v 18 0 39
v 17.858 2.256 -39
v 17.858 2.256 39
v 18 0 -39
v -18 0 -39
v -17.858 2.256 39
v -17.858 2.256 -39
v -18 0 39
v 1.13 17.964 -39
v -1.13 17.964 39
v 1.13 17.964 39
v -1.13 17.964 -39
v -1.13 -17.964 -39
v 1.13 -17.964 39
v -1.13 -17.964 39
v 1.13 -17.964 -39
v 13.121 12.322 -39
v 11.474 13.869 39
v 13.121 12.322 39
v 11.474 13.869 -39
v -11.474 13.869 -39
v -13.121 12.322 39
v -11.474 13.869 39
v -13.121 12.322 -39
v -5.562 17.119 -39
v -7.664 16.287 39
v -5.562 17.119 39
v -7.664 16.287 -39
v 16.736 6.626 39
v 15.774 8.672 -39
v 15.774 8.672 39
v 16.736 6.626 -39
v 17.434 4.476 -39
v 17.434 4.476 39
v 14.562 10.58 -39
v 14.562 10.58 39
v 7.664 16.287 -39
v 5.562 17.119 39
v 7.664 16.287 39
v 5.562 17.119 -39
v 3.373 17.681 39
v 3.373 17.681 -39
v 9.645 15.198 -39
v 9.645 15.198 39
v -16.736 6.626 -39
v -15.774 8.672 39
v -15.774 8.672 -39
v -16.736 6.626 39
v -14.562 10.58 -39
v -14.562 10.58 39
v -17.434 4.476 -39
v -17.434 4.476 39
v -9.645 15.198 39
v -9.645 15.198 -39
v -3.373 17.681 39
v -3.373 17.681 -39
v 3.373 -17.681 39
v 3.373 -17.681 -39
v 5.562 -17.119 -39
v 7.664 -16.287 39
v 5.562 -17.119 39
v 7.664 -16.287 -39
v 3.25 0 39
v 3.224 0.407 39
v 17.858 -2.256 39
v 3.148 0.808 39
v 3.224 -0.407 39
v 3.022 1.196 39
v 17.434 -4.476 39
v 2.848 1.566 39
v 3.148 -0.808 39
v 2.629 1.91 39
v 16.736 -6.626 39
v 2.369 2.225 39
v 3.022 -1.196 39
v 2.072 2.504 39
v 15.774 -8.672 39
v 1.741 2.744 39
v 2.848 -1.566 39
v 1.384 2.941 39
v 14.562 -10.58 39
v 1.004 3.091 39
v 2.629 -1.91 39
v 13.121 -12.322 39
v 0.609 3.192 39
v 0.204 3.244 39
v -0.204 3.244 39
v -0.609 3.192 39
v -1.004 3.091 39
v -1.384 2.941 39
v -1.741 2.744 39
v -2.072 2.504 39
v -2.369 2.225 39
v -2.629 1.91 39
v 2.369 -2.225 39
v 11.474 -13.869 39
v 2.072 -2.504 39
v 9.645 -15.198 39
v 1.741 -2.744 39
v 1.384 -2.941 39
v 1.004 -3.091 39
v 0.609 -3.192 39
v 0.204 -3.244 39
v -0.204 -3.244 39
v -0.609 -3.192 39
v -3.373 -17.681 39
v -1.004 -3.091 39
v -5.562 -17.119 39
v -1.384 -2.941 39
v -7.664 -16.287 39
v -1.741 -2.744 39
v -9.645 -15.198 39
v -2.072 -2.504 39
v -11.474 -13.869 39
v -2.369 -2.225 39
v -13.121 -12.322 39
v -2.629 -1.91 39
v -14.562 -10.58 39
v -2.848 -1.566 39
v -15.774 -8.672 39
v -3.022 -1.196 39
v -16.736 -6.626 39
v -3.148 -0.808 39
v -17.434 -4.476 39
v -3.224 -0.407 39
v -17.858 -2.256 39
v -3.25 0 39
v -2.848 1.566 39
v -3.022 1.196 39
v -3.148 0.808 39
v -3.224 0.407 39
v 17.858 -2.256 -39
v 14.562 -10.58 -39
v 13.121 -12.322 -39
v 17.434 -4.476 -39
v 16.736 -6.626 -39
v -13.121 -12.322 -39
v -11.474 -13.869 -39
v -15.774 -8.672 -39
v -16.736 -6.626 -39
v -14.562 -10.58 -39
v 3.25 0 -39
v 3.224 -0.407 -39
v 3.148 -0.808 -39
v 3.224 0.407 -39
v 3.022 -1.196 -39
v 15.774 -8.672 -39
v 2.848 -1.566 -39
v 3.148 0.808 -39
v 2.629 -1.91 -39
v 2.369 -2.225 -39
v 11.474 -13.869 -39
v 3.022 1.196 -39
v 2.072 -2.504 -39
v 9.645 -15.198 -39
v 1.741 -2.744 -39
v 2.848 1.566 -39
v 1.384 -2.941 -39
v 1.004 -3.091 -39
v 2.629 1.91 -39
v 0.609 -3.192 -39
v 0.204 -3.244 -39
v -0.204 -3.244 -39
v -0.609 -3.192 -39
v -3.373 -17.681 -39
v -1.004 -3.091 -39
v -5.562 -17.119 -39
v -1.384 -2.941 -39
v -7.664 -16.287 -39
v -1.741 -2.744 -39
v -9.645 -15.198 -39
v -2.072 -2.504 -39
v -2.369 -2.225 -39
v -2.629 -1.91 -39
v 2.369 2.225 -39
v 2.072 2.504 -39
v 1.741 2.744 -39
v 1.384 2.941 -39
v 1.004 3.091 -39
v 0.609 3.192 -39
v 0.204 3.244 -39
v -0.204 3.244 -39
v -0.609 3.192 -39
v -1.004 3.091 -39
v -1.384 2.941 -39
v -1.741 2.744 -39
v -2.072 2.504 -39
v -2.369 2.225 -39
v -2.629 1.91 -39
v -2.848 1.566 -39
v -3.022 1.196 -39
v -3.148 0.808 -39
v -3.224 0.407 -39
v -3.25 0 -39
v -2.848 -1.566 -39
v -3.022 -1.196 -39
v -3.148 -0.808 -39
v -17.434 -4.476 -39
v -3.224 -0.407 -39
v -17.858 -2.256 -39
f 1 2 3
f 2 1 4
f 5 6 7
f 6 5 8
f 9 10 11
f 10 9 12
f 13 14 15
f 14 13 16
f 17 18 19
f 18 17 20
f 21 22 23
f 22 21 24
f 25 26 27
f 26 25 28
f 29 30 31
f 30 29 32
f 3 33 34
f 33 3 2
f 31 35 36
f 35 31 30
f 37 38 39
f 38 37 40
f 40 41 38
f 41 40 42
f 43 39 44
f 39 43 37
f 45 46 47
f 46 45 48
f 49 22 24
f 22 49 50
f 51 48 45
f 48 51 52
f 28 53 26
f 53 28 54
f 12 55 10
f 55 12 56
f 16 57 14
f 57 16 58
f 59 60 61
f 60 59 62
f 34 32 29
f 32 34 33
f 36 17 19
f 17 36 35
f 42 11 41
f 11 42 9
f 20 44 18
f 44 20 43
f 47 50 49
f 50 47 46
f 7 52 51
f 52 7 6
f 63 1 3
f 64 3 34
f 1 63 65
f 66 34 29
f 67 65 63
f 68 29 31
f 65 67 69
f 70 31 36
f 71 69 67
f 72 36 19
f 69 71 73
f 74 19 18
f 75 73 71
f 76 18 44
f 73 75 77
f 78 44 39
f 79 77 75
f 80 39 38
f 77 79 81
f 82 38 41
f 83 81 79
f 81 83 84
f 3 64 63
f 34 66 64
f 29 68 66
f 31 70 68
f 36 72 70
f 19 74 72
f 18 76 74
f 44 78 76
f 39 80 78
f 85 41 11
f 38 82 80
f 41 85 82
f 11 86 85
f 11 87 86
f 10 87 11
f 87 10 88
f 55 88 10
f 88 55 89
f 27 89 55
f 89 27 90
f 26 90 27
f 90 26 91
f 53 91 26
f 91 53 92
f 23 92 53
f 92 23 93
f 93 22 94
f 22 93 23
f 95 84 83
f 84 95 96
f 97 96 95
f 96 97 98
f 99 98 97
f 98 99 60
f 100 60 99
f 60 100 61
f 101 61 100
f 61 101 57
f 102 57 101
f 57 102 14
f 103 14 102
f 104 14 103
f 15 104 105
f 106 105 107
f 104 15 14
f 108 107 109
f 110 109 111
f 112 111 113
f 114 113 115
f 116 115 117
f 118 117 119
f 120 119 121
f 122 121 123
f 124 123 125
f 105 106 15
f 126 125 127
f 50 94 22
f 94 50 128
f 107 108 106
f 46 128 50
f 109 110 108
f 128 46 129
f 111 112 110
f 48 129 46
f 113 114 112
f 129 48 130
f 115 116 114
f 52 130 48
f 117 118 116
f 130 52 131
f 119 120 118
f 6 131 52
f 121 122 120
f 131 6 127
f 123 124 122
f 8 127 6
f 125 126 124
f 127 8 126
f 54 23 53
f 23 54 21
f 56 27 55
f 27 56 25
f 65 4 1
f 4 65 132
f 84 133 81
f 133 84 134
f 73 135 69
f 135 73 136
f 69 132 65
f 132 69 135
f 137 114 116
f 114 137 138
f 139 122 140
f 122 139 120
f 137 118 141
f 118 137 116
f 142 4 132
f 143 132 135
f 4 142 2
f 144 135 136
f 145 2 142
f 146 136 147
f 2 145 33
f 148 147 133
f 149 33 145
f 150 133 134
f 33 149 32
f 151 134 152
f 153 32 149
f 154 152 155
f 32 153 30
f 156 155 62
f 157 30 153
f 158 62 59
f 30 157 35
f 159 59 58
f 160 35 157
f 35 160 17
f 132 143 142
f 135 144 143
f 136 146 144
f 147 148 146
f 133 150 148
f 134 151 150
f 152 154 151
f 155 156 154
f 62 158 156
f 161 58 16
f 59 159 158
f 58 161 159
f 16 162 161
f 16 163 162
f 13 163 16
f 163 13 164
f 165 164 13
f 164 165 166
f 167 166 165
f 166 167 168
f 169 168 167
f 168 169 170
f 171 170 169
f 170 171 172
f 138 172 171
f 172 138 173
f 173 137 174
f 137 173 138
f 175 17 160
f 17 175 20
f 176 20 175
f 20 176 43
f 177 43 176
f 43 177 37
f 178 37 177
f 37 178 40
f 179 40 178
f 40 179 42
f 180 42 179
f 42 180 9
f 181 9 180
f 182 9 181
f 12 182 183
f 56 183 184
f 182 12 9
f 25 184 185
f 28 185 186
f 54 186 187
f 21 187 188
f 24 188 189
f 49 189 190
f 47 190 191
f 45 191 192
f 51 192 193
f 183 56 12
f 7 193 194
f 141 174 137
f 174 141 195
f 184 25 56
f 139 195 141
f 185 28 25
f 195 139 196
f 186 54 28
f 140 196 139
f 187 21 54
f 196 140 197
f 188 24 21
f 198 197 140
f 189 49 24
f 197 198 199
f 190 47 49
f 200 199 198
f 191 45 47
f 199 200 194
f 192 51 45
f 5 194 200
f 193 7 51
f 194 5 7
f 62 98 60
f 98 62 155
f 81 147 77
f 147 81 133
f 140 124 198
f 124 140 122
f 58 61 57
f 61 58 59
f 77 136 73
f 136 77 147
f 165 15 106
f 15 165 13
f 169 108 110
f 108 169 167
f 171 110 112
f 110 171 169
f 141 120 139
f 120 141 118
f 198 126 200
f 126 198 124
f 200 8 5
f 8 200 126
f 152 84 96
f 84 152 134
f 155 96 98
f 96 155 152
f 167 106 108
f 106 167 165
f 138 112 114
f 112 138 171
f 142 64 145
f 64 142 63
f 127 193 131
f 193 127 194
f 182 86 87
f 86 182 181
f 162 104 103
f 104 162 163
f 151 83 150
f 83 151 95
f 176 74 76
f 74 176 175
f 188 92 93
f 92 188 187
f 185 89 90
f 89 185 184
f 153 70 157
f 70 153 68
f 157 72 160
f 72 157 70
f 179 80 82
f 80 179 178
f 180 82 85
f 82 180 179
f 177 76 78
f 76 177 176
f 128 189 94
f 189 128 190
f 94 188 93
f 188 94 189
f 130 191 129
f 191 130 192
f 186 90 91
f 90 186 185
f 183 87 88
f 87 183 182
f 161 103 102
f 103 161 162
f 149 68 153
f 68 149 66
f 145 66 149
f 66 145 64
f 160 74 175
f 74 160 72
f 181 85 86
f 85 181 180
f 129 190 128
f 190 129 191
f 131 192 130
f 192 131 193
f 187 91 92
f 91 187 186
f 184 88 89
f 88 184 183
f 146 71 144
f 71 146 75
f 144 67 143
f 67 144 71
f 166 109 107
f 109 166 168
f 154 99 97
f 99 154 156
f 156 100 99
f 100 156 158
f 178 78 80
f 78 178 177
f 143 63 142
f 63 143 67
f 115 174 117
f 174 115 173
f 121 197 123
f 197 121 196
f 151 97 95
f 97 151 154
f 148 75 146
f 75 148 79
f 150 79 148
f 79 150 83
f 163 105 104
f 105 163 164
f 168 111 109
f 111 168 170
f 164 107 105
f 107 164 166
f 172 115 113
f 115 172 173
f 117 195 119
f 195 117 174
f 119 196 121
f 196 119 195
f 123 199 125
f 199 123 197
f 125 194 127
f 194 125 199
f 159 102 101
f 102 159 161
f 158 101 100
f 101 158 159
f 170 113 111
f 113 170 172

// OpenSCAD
$fn = 50;


difference() {
	union() {
		translate(v = [0, 0, -39.0000000000]) {
			cylinder(h = 78, r = 18.0000000000);
		}
	}
	union() {
		translate(v = [0, 0, -100.0000000000]) {
			cylinder(h = 200, r = 3.2500000000);
		}
	}
}
